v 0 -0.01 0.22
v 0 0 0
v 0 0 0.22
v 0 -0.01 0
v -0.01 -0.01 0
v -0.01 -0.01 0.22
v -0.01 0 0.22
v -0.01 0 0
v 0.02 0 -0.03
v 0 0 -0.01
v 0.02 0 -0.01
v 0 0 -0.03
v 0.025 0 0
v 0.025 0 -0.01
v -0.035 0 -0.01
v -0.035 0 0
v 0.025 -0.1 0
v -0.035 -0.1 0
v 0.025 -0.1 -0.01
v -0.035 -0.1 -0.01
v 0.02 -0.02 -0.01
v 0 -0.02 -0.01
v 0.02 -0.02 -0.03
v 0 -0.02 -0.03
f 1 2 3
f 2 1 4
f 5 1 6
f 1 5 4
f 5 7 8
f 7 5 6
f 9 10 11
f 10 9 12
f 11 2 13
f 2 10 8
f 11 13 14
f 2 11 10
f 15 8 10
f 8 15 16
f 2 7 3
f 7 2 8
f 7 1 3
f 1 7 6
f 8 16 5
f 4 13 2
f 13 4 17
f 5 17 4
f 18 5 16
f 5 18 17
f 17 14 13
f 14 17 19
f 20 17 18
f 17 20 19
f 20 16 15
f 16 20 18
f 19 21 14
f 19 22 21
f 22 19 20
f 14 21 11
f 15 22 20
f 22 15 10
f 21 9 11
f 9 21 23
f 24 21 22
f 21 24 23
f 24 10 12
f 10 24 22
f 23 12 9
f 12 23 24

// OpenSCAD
scale([.02,.02,.02]){
rotate([90,0,0]){
    rotate([0,180,0]){
rotate([180,0,0]){

translate([0,-11,0]){
cube([0.5,11,0.5]);
translate([-1.25,11,0])
{
    cube([3,0.5,5]);
}
translate([-1,11.5,0])
{
    cube([1,1,1]);
}
}}}}}
